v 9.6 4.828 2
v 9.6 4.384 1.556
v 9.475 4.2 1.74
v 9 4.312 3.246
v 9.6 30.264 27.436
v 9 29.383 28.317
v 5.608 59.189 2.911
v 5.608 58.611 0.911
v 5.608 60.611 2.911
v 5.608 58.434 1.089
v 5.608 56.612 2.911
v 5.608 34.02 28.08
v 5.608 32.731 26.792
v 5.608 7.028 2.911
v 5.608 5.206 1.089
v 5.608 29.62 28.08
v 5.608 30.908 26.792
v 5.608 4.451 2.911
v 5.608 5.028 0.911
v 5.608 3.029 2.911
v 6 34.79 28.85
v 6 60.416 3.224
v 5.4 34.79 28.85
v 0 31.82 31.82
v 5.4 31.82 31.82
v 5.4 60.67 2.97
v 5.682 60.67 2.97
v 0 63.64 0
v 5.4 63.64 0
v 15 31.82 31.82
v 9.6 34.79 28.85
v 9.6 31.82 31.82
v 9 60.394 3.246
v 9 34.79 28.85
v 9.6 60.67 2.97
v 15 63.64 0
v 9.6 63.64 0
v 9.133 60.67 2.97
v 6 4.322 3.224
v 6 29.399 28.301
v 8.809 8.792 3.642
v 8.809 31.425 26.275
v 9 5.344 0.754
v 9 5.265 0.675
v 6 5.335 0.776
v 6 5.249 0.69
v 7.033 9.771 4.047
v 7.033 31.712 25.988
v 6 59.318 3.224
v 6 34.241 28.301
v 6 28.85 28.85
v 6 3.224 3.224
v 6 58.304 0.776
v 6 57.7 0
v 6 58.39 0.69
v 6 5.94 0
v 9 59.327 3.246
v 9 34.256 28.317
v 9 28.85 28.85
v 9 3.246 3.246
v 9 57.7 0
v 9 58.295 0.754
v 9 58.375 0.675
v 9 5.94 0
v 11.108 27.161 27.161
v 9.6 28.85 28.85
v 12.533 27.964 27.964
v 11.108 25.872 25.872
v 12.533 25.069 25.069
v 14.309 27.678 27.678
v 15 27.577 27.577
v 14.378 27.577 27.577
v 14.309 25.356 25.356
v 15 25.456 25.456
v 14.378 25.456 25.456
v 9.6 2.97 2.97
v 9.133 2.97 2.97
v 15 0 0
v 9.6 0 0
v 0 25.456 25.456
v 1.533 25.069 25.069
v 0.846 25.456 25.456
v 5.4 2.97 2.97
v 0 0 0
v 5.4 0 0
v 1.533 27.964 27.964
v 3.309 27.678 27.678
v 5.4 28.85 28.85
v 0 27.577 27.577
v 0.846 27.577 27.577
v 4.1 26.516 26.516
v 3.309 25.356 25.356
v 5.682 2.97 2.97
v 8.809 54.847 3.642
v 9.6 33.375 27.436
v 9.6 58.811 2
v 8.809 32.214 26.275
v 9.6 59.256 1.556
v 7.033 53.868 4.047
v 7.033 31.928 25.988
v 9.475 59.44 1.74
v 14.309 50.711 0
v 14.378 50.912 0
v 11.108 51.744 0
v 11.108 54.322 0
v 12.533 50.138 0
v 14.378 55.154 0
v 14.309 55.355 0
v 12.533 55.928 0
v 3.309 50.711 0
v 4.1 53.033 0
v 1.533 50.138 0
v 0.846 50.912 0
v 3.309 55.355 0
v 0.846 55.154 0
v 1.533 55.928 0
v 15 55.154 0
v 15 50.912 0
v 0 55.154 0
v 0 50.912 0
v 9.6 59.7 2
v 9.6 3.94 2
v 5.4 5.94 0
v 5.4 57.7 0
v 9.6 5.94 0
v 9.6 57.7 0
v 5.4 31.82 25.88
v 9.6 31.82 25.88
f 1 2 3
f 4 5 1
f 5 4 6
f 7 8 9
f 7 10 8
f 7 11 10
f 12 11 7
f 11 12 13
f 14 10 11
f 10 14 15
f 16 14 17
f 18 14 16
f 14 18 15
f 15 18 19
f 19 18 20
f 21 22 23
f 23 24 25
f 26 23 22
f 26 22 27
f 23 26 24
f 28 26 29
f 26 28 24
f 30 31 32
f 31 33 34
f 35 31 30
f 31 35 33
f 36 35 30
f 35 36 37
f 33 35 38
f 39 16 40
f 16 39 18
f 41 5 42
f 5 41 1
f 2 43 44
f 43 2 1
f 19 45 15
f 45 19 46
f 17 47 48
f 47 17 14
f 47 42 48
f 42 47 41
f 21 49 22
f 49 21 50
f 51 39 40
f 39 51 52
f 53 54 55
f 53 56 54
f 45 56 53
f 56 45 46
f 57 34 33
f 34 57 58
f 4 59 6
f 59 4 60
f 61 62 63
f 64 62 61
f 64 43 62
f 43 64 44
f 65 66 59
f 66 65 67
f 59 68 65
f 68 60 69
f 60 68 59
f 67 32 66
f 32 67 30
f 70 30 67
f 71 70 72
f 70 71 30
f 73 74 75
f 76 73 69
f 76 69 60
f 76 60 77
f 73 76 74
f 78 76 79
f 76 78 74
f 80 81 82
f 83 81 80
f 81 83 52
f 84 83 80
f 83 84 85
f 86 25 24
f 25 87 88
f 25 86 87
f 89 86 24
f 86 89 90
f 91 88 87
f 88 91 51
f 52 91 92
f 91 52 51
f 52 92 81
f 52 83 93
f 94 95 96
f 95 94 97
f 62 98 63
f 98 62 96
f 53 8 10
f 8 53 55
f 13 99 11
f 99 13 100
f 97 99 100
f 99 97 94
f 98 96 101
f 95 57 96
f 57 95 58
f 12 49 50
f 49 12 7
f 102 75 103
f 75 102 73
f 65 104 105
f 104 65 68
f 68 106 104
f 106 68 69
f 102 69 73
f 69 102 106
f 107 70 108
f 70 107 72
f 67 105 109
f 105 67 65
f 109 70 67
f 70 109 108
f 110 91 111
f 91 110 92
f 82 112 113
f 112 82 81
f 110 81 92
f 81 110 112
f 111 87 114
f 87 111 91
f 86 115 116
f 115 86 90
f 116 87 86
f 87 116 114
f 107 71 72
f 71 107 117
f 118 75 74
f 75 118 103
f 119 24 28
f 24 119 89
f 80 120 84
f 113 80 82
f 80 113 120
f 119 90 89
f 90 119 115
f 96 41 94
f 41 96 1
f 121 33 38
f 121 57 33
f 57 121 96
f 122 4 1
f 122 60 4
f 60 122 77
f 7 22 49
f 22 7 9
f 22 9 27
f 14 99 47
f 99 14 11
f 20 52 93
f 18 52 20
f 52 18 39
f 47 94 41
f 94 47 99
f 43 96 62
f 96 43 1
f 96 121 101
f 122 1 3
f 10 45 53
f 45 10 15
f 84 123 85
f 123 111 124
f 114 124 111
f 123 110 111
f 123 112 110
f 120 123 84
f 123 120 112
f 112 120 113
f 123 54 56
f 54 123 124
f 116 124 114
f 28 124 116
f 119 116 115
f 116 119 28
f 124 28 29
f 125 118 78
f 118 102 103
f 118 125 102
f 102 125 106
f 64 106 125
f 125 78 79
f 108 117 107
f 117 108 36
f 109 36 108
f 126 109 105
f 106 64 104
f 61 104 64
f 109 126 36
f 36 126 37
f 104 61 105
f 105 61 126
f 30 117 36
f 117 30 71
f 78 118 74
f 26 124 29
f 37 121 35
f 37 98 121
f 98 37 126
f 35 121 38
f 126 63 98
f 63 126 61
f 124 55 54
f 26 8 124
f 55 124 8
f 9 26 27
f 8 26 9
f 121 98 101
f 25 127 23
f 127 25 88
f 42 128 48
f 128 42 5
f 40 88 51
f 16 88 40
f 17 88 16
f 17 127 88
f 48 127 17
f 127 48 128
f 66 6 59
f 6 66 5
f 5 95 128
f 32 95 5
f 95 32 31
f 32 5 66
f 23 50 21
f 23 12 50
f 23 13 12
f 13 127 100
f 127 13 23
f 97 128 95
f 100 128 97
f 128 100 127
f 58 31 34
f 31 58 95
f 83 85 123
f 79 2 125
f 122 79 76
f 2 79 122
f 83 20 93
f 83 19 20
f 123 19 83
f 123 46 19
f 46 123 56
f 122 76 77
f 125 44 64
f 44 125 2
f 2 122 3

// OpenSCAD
/**
 * Create an adapter for stabilizing orthogonal Fischertechnik connections.
 *
 * @author Brian Schroeder
 * @since 23.04.2021
 */

/* [Length] */
// Length in millimeters
Length=45; // [15, 30, 45, 60, 75, 90]

dBlock=15; // block (max) diameter
dFti=4; // axis diameter 4mm
tFti=0.2; // some space around
gFtiW=3; // with of gap
gFtiD=2; // depth of gap
dCyl=dFti + tFti;

/*
 * Create the stabilizer with length passed by the argument.
 *
 * @param ftiLength length in millimeters (default is 15)
 */
module ftiStabilizer(ftiLength=15) {

    difference() {
        d = 0.02; // for better preview rendering

        // corpus
        translate([0, 0, 0])cube([15, ftiLength, ftiLength]);
        translate([-d, 0, 0])rotate([45, 0, 0])cube([15 + 2*d, ftiLength*2, ftiLength*2]);

        // connectors
        translate([0, ftiLength-15, 0])ftiConnectors(ftiLength, ftiFront=false, ftiBottom=false, ftiTop=false, ftiLeft=false, ftiRight=false);
        //translate([0, ftiLength-15, 15+5])ftiConnectors(ftiLength, ftiFront=false, ftiBottom=false, ftiTop=false, ftiLeft=true, ftiRight=true);
        translate([0, ftiLength, 0])rotate([90, 0, 0])ftiConnectors(ftiLength, ftiBack=false, ftiBottom=false, ftiTop=false, ftiLeft=true, ftiRight=true);
        translate([0, 0, 0])rotate([-45, 0, 0])ftiConnectors(ftiLength*2, ftiBack=false, ftiBottom=false, ftiTop=false, ftiLeft=false, ftiRight=false);
        // ends
        translate([dBlock/2 - dCyl/2, 0, 0])cube([dCyl, dCyl, dCyl]);
        translate([dBlock/2 - dCyl/2, ftiLength - dCyl, 0])cube([dCyl, dCyl, dCyl]);
        translate([dBlock/2 - dCyl/2, ftiLength - dCyl, ftiLength - dCyl])cube([dCyl, dCyl, dCyl]);
    }
}

/*
 * Create Fischertechnik compatible connectors with length passed by the argument.
 *
 * @param ftiLength length in millimeters (default is 15)
 */
module ftiConnectors(ftiLength=15,ftiFront=true,ftiBack=true,ftiLeft=true,ftiRight=true,ftiBottom=true,ftiTop=true) {

    // Fischertechnik connector
    union() {
        //cube([dBlock, dBlock, ftiLength]);
        // axis
        if (ftiFront) {
            translate([dBlock/2,dFti/2,0])cylinder(h=ftiLength, d=dCyl);
        }
        if (ftiBack) {
            translate([dBlock/2,dBlock-dFti/2,0])cylinder(h=ftiLength, d=dCyl);
        }
        if (ftiRight) {
            translate([dBlock-dFti/2,dBlock/2,0])cylinder(h=ftiLength, d=dCyl);
        }
        if (ftiLeft) {
            translate([dFti/2,dBlock/2,0])cylinder(h=ftiLength, d=dCyl);
        }
        // space
        if (ftiFront) {
            translate([dBlock/2-gFtiW/2,0,0])cube([gFtiW, gFtiD, ftiLength]);
        }
        if (ftiBack) {
            translate([dBlock/2-gFtiW/2,dBlock-gFtiD,0])cube([gFtiW, gFtiD, ftiLength]);
        }
        if (ftiRight) {
            translate([dBlock-gFtiW/2,dBlock/2-gFtiW/2,0])cube([gFtiD, gFtiW, ftiLength]);
        }
        if (ftiLeft) {
            translate([0,dBlock/2-gFtiW/2,0])cube([gFtiD, gFtiW, ftiLength]);
        }
        if (ftiBottom) {
        // orthoganal axis at bottom
            translate([dBlock/2, dBlock, dFti/2])rotate([90, 0, 0])cylinder(h=dBlock, d=dCyl);
            translate([dBlock/2-dFti/2, dBlock-dFti/2, 0])cube([dCyl, dCyl, dCyl]);
            translate([dBlock/2-dFti/2, 0-dFti/2, 0])cube([dCyl, dCyl, dCyl]);
            translate([dBlock/2+gFtiW/2, 0, -gFtiD/2])rotate([270, 180, 0])cube([gFtiW, gFtiD, dBlock]);
        }
        if (ftiTop) {
        // orthoganal axis at top
        translate([dBlock/2, dBlock, ftiLength-dFti/2])rotate([90, 0, 0])cylinder(h=dBlock, d=dCyl);
        translate([dBlock/2-dFti/2, dBlock-dFti/2, ftiLength-dCyl])cube([dCyl, dCyl, dCyl]);
        translate([dBlock/2-dFti/2, 0-dFti/2, ftiLength-dCyl])cube([dCyl, dCyl, dCyl]);
        translate([dBlock/2+gFtiW/2, 0, ftiLength-dFti/2-gFtiD/2])rotate([270, 180, 0])cube([gFtiW, gFtiD, dBlock]);
        }
    }
}

translate([0, sqrt(2*Length*Length), 0])rotate([135, 0, 0])ftiStabilizer(Length);
//ftiStabilizer(Length);
